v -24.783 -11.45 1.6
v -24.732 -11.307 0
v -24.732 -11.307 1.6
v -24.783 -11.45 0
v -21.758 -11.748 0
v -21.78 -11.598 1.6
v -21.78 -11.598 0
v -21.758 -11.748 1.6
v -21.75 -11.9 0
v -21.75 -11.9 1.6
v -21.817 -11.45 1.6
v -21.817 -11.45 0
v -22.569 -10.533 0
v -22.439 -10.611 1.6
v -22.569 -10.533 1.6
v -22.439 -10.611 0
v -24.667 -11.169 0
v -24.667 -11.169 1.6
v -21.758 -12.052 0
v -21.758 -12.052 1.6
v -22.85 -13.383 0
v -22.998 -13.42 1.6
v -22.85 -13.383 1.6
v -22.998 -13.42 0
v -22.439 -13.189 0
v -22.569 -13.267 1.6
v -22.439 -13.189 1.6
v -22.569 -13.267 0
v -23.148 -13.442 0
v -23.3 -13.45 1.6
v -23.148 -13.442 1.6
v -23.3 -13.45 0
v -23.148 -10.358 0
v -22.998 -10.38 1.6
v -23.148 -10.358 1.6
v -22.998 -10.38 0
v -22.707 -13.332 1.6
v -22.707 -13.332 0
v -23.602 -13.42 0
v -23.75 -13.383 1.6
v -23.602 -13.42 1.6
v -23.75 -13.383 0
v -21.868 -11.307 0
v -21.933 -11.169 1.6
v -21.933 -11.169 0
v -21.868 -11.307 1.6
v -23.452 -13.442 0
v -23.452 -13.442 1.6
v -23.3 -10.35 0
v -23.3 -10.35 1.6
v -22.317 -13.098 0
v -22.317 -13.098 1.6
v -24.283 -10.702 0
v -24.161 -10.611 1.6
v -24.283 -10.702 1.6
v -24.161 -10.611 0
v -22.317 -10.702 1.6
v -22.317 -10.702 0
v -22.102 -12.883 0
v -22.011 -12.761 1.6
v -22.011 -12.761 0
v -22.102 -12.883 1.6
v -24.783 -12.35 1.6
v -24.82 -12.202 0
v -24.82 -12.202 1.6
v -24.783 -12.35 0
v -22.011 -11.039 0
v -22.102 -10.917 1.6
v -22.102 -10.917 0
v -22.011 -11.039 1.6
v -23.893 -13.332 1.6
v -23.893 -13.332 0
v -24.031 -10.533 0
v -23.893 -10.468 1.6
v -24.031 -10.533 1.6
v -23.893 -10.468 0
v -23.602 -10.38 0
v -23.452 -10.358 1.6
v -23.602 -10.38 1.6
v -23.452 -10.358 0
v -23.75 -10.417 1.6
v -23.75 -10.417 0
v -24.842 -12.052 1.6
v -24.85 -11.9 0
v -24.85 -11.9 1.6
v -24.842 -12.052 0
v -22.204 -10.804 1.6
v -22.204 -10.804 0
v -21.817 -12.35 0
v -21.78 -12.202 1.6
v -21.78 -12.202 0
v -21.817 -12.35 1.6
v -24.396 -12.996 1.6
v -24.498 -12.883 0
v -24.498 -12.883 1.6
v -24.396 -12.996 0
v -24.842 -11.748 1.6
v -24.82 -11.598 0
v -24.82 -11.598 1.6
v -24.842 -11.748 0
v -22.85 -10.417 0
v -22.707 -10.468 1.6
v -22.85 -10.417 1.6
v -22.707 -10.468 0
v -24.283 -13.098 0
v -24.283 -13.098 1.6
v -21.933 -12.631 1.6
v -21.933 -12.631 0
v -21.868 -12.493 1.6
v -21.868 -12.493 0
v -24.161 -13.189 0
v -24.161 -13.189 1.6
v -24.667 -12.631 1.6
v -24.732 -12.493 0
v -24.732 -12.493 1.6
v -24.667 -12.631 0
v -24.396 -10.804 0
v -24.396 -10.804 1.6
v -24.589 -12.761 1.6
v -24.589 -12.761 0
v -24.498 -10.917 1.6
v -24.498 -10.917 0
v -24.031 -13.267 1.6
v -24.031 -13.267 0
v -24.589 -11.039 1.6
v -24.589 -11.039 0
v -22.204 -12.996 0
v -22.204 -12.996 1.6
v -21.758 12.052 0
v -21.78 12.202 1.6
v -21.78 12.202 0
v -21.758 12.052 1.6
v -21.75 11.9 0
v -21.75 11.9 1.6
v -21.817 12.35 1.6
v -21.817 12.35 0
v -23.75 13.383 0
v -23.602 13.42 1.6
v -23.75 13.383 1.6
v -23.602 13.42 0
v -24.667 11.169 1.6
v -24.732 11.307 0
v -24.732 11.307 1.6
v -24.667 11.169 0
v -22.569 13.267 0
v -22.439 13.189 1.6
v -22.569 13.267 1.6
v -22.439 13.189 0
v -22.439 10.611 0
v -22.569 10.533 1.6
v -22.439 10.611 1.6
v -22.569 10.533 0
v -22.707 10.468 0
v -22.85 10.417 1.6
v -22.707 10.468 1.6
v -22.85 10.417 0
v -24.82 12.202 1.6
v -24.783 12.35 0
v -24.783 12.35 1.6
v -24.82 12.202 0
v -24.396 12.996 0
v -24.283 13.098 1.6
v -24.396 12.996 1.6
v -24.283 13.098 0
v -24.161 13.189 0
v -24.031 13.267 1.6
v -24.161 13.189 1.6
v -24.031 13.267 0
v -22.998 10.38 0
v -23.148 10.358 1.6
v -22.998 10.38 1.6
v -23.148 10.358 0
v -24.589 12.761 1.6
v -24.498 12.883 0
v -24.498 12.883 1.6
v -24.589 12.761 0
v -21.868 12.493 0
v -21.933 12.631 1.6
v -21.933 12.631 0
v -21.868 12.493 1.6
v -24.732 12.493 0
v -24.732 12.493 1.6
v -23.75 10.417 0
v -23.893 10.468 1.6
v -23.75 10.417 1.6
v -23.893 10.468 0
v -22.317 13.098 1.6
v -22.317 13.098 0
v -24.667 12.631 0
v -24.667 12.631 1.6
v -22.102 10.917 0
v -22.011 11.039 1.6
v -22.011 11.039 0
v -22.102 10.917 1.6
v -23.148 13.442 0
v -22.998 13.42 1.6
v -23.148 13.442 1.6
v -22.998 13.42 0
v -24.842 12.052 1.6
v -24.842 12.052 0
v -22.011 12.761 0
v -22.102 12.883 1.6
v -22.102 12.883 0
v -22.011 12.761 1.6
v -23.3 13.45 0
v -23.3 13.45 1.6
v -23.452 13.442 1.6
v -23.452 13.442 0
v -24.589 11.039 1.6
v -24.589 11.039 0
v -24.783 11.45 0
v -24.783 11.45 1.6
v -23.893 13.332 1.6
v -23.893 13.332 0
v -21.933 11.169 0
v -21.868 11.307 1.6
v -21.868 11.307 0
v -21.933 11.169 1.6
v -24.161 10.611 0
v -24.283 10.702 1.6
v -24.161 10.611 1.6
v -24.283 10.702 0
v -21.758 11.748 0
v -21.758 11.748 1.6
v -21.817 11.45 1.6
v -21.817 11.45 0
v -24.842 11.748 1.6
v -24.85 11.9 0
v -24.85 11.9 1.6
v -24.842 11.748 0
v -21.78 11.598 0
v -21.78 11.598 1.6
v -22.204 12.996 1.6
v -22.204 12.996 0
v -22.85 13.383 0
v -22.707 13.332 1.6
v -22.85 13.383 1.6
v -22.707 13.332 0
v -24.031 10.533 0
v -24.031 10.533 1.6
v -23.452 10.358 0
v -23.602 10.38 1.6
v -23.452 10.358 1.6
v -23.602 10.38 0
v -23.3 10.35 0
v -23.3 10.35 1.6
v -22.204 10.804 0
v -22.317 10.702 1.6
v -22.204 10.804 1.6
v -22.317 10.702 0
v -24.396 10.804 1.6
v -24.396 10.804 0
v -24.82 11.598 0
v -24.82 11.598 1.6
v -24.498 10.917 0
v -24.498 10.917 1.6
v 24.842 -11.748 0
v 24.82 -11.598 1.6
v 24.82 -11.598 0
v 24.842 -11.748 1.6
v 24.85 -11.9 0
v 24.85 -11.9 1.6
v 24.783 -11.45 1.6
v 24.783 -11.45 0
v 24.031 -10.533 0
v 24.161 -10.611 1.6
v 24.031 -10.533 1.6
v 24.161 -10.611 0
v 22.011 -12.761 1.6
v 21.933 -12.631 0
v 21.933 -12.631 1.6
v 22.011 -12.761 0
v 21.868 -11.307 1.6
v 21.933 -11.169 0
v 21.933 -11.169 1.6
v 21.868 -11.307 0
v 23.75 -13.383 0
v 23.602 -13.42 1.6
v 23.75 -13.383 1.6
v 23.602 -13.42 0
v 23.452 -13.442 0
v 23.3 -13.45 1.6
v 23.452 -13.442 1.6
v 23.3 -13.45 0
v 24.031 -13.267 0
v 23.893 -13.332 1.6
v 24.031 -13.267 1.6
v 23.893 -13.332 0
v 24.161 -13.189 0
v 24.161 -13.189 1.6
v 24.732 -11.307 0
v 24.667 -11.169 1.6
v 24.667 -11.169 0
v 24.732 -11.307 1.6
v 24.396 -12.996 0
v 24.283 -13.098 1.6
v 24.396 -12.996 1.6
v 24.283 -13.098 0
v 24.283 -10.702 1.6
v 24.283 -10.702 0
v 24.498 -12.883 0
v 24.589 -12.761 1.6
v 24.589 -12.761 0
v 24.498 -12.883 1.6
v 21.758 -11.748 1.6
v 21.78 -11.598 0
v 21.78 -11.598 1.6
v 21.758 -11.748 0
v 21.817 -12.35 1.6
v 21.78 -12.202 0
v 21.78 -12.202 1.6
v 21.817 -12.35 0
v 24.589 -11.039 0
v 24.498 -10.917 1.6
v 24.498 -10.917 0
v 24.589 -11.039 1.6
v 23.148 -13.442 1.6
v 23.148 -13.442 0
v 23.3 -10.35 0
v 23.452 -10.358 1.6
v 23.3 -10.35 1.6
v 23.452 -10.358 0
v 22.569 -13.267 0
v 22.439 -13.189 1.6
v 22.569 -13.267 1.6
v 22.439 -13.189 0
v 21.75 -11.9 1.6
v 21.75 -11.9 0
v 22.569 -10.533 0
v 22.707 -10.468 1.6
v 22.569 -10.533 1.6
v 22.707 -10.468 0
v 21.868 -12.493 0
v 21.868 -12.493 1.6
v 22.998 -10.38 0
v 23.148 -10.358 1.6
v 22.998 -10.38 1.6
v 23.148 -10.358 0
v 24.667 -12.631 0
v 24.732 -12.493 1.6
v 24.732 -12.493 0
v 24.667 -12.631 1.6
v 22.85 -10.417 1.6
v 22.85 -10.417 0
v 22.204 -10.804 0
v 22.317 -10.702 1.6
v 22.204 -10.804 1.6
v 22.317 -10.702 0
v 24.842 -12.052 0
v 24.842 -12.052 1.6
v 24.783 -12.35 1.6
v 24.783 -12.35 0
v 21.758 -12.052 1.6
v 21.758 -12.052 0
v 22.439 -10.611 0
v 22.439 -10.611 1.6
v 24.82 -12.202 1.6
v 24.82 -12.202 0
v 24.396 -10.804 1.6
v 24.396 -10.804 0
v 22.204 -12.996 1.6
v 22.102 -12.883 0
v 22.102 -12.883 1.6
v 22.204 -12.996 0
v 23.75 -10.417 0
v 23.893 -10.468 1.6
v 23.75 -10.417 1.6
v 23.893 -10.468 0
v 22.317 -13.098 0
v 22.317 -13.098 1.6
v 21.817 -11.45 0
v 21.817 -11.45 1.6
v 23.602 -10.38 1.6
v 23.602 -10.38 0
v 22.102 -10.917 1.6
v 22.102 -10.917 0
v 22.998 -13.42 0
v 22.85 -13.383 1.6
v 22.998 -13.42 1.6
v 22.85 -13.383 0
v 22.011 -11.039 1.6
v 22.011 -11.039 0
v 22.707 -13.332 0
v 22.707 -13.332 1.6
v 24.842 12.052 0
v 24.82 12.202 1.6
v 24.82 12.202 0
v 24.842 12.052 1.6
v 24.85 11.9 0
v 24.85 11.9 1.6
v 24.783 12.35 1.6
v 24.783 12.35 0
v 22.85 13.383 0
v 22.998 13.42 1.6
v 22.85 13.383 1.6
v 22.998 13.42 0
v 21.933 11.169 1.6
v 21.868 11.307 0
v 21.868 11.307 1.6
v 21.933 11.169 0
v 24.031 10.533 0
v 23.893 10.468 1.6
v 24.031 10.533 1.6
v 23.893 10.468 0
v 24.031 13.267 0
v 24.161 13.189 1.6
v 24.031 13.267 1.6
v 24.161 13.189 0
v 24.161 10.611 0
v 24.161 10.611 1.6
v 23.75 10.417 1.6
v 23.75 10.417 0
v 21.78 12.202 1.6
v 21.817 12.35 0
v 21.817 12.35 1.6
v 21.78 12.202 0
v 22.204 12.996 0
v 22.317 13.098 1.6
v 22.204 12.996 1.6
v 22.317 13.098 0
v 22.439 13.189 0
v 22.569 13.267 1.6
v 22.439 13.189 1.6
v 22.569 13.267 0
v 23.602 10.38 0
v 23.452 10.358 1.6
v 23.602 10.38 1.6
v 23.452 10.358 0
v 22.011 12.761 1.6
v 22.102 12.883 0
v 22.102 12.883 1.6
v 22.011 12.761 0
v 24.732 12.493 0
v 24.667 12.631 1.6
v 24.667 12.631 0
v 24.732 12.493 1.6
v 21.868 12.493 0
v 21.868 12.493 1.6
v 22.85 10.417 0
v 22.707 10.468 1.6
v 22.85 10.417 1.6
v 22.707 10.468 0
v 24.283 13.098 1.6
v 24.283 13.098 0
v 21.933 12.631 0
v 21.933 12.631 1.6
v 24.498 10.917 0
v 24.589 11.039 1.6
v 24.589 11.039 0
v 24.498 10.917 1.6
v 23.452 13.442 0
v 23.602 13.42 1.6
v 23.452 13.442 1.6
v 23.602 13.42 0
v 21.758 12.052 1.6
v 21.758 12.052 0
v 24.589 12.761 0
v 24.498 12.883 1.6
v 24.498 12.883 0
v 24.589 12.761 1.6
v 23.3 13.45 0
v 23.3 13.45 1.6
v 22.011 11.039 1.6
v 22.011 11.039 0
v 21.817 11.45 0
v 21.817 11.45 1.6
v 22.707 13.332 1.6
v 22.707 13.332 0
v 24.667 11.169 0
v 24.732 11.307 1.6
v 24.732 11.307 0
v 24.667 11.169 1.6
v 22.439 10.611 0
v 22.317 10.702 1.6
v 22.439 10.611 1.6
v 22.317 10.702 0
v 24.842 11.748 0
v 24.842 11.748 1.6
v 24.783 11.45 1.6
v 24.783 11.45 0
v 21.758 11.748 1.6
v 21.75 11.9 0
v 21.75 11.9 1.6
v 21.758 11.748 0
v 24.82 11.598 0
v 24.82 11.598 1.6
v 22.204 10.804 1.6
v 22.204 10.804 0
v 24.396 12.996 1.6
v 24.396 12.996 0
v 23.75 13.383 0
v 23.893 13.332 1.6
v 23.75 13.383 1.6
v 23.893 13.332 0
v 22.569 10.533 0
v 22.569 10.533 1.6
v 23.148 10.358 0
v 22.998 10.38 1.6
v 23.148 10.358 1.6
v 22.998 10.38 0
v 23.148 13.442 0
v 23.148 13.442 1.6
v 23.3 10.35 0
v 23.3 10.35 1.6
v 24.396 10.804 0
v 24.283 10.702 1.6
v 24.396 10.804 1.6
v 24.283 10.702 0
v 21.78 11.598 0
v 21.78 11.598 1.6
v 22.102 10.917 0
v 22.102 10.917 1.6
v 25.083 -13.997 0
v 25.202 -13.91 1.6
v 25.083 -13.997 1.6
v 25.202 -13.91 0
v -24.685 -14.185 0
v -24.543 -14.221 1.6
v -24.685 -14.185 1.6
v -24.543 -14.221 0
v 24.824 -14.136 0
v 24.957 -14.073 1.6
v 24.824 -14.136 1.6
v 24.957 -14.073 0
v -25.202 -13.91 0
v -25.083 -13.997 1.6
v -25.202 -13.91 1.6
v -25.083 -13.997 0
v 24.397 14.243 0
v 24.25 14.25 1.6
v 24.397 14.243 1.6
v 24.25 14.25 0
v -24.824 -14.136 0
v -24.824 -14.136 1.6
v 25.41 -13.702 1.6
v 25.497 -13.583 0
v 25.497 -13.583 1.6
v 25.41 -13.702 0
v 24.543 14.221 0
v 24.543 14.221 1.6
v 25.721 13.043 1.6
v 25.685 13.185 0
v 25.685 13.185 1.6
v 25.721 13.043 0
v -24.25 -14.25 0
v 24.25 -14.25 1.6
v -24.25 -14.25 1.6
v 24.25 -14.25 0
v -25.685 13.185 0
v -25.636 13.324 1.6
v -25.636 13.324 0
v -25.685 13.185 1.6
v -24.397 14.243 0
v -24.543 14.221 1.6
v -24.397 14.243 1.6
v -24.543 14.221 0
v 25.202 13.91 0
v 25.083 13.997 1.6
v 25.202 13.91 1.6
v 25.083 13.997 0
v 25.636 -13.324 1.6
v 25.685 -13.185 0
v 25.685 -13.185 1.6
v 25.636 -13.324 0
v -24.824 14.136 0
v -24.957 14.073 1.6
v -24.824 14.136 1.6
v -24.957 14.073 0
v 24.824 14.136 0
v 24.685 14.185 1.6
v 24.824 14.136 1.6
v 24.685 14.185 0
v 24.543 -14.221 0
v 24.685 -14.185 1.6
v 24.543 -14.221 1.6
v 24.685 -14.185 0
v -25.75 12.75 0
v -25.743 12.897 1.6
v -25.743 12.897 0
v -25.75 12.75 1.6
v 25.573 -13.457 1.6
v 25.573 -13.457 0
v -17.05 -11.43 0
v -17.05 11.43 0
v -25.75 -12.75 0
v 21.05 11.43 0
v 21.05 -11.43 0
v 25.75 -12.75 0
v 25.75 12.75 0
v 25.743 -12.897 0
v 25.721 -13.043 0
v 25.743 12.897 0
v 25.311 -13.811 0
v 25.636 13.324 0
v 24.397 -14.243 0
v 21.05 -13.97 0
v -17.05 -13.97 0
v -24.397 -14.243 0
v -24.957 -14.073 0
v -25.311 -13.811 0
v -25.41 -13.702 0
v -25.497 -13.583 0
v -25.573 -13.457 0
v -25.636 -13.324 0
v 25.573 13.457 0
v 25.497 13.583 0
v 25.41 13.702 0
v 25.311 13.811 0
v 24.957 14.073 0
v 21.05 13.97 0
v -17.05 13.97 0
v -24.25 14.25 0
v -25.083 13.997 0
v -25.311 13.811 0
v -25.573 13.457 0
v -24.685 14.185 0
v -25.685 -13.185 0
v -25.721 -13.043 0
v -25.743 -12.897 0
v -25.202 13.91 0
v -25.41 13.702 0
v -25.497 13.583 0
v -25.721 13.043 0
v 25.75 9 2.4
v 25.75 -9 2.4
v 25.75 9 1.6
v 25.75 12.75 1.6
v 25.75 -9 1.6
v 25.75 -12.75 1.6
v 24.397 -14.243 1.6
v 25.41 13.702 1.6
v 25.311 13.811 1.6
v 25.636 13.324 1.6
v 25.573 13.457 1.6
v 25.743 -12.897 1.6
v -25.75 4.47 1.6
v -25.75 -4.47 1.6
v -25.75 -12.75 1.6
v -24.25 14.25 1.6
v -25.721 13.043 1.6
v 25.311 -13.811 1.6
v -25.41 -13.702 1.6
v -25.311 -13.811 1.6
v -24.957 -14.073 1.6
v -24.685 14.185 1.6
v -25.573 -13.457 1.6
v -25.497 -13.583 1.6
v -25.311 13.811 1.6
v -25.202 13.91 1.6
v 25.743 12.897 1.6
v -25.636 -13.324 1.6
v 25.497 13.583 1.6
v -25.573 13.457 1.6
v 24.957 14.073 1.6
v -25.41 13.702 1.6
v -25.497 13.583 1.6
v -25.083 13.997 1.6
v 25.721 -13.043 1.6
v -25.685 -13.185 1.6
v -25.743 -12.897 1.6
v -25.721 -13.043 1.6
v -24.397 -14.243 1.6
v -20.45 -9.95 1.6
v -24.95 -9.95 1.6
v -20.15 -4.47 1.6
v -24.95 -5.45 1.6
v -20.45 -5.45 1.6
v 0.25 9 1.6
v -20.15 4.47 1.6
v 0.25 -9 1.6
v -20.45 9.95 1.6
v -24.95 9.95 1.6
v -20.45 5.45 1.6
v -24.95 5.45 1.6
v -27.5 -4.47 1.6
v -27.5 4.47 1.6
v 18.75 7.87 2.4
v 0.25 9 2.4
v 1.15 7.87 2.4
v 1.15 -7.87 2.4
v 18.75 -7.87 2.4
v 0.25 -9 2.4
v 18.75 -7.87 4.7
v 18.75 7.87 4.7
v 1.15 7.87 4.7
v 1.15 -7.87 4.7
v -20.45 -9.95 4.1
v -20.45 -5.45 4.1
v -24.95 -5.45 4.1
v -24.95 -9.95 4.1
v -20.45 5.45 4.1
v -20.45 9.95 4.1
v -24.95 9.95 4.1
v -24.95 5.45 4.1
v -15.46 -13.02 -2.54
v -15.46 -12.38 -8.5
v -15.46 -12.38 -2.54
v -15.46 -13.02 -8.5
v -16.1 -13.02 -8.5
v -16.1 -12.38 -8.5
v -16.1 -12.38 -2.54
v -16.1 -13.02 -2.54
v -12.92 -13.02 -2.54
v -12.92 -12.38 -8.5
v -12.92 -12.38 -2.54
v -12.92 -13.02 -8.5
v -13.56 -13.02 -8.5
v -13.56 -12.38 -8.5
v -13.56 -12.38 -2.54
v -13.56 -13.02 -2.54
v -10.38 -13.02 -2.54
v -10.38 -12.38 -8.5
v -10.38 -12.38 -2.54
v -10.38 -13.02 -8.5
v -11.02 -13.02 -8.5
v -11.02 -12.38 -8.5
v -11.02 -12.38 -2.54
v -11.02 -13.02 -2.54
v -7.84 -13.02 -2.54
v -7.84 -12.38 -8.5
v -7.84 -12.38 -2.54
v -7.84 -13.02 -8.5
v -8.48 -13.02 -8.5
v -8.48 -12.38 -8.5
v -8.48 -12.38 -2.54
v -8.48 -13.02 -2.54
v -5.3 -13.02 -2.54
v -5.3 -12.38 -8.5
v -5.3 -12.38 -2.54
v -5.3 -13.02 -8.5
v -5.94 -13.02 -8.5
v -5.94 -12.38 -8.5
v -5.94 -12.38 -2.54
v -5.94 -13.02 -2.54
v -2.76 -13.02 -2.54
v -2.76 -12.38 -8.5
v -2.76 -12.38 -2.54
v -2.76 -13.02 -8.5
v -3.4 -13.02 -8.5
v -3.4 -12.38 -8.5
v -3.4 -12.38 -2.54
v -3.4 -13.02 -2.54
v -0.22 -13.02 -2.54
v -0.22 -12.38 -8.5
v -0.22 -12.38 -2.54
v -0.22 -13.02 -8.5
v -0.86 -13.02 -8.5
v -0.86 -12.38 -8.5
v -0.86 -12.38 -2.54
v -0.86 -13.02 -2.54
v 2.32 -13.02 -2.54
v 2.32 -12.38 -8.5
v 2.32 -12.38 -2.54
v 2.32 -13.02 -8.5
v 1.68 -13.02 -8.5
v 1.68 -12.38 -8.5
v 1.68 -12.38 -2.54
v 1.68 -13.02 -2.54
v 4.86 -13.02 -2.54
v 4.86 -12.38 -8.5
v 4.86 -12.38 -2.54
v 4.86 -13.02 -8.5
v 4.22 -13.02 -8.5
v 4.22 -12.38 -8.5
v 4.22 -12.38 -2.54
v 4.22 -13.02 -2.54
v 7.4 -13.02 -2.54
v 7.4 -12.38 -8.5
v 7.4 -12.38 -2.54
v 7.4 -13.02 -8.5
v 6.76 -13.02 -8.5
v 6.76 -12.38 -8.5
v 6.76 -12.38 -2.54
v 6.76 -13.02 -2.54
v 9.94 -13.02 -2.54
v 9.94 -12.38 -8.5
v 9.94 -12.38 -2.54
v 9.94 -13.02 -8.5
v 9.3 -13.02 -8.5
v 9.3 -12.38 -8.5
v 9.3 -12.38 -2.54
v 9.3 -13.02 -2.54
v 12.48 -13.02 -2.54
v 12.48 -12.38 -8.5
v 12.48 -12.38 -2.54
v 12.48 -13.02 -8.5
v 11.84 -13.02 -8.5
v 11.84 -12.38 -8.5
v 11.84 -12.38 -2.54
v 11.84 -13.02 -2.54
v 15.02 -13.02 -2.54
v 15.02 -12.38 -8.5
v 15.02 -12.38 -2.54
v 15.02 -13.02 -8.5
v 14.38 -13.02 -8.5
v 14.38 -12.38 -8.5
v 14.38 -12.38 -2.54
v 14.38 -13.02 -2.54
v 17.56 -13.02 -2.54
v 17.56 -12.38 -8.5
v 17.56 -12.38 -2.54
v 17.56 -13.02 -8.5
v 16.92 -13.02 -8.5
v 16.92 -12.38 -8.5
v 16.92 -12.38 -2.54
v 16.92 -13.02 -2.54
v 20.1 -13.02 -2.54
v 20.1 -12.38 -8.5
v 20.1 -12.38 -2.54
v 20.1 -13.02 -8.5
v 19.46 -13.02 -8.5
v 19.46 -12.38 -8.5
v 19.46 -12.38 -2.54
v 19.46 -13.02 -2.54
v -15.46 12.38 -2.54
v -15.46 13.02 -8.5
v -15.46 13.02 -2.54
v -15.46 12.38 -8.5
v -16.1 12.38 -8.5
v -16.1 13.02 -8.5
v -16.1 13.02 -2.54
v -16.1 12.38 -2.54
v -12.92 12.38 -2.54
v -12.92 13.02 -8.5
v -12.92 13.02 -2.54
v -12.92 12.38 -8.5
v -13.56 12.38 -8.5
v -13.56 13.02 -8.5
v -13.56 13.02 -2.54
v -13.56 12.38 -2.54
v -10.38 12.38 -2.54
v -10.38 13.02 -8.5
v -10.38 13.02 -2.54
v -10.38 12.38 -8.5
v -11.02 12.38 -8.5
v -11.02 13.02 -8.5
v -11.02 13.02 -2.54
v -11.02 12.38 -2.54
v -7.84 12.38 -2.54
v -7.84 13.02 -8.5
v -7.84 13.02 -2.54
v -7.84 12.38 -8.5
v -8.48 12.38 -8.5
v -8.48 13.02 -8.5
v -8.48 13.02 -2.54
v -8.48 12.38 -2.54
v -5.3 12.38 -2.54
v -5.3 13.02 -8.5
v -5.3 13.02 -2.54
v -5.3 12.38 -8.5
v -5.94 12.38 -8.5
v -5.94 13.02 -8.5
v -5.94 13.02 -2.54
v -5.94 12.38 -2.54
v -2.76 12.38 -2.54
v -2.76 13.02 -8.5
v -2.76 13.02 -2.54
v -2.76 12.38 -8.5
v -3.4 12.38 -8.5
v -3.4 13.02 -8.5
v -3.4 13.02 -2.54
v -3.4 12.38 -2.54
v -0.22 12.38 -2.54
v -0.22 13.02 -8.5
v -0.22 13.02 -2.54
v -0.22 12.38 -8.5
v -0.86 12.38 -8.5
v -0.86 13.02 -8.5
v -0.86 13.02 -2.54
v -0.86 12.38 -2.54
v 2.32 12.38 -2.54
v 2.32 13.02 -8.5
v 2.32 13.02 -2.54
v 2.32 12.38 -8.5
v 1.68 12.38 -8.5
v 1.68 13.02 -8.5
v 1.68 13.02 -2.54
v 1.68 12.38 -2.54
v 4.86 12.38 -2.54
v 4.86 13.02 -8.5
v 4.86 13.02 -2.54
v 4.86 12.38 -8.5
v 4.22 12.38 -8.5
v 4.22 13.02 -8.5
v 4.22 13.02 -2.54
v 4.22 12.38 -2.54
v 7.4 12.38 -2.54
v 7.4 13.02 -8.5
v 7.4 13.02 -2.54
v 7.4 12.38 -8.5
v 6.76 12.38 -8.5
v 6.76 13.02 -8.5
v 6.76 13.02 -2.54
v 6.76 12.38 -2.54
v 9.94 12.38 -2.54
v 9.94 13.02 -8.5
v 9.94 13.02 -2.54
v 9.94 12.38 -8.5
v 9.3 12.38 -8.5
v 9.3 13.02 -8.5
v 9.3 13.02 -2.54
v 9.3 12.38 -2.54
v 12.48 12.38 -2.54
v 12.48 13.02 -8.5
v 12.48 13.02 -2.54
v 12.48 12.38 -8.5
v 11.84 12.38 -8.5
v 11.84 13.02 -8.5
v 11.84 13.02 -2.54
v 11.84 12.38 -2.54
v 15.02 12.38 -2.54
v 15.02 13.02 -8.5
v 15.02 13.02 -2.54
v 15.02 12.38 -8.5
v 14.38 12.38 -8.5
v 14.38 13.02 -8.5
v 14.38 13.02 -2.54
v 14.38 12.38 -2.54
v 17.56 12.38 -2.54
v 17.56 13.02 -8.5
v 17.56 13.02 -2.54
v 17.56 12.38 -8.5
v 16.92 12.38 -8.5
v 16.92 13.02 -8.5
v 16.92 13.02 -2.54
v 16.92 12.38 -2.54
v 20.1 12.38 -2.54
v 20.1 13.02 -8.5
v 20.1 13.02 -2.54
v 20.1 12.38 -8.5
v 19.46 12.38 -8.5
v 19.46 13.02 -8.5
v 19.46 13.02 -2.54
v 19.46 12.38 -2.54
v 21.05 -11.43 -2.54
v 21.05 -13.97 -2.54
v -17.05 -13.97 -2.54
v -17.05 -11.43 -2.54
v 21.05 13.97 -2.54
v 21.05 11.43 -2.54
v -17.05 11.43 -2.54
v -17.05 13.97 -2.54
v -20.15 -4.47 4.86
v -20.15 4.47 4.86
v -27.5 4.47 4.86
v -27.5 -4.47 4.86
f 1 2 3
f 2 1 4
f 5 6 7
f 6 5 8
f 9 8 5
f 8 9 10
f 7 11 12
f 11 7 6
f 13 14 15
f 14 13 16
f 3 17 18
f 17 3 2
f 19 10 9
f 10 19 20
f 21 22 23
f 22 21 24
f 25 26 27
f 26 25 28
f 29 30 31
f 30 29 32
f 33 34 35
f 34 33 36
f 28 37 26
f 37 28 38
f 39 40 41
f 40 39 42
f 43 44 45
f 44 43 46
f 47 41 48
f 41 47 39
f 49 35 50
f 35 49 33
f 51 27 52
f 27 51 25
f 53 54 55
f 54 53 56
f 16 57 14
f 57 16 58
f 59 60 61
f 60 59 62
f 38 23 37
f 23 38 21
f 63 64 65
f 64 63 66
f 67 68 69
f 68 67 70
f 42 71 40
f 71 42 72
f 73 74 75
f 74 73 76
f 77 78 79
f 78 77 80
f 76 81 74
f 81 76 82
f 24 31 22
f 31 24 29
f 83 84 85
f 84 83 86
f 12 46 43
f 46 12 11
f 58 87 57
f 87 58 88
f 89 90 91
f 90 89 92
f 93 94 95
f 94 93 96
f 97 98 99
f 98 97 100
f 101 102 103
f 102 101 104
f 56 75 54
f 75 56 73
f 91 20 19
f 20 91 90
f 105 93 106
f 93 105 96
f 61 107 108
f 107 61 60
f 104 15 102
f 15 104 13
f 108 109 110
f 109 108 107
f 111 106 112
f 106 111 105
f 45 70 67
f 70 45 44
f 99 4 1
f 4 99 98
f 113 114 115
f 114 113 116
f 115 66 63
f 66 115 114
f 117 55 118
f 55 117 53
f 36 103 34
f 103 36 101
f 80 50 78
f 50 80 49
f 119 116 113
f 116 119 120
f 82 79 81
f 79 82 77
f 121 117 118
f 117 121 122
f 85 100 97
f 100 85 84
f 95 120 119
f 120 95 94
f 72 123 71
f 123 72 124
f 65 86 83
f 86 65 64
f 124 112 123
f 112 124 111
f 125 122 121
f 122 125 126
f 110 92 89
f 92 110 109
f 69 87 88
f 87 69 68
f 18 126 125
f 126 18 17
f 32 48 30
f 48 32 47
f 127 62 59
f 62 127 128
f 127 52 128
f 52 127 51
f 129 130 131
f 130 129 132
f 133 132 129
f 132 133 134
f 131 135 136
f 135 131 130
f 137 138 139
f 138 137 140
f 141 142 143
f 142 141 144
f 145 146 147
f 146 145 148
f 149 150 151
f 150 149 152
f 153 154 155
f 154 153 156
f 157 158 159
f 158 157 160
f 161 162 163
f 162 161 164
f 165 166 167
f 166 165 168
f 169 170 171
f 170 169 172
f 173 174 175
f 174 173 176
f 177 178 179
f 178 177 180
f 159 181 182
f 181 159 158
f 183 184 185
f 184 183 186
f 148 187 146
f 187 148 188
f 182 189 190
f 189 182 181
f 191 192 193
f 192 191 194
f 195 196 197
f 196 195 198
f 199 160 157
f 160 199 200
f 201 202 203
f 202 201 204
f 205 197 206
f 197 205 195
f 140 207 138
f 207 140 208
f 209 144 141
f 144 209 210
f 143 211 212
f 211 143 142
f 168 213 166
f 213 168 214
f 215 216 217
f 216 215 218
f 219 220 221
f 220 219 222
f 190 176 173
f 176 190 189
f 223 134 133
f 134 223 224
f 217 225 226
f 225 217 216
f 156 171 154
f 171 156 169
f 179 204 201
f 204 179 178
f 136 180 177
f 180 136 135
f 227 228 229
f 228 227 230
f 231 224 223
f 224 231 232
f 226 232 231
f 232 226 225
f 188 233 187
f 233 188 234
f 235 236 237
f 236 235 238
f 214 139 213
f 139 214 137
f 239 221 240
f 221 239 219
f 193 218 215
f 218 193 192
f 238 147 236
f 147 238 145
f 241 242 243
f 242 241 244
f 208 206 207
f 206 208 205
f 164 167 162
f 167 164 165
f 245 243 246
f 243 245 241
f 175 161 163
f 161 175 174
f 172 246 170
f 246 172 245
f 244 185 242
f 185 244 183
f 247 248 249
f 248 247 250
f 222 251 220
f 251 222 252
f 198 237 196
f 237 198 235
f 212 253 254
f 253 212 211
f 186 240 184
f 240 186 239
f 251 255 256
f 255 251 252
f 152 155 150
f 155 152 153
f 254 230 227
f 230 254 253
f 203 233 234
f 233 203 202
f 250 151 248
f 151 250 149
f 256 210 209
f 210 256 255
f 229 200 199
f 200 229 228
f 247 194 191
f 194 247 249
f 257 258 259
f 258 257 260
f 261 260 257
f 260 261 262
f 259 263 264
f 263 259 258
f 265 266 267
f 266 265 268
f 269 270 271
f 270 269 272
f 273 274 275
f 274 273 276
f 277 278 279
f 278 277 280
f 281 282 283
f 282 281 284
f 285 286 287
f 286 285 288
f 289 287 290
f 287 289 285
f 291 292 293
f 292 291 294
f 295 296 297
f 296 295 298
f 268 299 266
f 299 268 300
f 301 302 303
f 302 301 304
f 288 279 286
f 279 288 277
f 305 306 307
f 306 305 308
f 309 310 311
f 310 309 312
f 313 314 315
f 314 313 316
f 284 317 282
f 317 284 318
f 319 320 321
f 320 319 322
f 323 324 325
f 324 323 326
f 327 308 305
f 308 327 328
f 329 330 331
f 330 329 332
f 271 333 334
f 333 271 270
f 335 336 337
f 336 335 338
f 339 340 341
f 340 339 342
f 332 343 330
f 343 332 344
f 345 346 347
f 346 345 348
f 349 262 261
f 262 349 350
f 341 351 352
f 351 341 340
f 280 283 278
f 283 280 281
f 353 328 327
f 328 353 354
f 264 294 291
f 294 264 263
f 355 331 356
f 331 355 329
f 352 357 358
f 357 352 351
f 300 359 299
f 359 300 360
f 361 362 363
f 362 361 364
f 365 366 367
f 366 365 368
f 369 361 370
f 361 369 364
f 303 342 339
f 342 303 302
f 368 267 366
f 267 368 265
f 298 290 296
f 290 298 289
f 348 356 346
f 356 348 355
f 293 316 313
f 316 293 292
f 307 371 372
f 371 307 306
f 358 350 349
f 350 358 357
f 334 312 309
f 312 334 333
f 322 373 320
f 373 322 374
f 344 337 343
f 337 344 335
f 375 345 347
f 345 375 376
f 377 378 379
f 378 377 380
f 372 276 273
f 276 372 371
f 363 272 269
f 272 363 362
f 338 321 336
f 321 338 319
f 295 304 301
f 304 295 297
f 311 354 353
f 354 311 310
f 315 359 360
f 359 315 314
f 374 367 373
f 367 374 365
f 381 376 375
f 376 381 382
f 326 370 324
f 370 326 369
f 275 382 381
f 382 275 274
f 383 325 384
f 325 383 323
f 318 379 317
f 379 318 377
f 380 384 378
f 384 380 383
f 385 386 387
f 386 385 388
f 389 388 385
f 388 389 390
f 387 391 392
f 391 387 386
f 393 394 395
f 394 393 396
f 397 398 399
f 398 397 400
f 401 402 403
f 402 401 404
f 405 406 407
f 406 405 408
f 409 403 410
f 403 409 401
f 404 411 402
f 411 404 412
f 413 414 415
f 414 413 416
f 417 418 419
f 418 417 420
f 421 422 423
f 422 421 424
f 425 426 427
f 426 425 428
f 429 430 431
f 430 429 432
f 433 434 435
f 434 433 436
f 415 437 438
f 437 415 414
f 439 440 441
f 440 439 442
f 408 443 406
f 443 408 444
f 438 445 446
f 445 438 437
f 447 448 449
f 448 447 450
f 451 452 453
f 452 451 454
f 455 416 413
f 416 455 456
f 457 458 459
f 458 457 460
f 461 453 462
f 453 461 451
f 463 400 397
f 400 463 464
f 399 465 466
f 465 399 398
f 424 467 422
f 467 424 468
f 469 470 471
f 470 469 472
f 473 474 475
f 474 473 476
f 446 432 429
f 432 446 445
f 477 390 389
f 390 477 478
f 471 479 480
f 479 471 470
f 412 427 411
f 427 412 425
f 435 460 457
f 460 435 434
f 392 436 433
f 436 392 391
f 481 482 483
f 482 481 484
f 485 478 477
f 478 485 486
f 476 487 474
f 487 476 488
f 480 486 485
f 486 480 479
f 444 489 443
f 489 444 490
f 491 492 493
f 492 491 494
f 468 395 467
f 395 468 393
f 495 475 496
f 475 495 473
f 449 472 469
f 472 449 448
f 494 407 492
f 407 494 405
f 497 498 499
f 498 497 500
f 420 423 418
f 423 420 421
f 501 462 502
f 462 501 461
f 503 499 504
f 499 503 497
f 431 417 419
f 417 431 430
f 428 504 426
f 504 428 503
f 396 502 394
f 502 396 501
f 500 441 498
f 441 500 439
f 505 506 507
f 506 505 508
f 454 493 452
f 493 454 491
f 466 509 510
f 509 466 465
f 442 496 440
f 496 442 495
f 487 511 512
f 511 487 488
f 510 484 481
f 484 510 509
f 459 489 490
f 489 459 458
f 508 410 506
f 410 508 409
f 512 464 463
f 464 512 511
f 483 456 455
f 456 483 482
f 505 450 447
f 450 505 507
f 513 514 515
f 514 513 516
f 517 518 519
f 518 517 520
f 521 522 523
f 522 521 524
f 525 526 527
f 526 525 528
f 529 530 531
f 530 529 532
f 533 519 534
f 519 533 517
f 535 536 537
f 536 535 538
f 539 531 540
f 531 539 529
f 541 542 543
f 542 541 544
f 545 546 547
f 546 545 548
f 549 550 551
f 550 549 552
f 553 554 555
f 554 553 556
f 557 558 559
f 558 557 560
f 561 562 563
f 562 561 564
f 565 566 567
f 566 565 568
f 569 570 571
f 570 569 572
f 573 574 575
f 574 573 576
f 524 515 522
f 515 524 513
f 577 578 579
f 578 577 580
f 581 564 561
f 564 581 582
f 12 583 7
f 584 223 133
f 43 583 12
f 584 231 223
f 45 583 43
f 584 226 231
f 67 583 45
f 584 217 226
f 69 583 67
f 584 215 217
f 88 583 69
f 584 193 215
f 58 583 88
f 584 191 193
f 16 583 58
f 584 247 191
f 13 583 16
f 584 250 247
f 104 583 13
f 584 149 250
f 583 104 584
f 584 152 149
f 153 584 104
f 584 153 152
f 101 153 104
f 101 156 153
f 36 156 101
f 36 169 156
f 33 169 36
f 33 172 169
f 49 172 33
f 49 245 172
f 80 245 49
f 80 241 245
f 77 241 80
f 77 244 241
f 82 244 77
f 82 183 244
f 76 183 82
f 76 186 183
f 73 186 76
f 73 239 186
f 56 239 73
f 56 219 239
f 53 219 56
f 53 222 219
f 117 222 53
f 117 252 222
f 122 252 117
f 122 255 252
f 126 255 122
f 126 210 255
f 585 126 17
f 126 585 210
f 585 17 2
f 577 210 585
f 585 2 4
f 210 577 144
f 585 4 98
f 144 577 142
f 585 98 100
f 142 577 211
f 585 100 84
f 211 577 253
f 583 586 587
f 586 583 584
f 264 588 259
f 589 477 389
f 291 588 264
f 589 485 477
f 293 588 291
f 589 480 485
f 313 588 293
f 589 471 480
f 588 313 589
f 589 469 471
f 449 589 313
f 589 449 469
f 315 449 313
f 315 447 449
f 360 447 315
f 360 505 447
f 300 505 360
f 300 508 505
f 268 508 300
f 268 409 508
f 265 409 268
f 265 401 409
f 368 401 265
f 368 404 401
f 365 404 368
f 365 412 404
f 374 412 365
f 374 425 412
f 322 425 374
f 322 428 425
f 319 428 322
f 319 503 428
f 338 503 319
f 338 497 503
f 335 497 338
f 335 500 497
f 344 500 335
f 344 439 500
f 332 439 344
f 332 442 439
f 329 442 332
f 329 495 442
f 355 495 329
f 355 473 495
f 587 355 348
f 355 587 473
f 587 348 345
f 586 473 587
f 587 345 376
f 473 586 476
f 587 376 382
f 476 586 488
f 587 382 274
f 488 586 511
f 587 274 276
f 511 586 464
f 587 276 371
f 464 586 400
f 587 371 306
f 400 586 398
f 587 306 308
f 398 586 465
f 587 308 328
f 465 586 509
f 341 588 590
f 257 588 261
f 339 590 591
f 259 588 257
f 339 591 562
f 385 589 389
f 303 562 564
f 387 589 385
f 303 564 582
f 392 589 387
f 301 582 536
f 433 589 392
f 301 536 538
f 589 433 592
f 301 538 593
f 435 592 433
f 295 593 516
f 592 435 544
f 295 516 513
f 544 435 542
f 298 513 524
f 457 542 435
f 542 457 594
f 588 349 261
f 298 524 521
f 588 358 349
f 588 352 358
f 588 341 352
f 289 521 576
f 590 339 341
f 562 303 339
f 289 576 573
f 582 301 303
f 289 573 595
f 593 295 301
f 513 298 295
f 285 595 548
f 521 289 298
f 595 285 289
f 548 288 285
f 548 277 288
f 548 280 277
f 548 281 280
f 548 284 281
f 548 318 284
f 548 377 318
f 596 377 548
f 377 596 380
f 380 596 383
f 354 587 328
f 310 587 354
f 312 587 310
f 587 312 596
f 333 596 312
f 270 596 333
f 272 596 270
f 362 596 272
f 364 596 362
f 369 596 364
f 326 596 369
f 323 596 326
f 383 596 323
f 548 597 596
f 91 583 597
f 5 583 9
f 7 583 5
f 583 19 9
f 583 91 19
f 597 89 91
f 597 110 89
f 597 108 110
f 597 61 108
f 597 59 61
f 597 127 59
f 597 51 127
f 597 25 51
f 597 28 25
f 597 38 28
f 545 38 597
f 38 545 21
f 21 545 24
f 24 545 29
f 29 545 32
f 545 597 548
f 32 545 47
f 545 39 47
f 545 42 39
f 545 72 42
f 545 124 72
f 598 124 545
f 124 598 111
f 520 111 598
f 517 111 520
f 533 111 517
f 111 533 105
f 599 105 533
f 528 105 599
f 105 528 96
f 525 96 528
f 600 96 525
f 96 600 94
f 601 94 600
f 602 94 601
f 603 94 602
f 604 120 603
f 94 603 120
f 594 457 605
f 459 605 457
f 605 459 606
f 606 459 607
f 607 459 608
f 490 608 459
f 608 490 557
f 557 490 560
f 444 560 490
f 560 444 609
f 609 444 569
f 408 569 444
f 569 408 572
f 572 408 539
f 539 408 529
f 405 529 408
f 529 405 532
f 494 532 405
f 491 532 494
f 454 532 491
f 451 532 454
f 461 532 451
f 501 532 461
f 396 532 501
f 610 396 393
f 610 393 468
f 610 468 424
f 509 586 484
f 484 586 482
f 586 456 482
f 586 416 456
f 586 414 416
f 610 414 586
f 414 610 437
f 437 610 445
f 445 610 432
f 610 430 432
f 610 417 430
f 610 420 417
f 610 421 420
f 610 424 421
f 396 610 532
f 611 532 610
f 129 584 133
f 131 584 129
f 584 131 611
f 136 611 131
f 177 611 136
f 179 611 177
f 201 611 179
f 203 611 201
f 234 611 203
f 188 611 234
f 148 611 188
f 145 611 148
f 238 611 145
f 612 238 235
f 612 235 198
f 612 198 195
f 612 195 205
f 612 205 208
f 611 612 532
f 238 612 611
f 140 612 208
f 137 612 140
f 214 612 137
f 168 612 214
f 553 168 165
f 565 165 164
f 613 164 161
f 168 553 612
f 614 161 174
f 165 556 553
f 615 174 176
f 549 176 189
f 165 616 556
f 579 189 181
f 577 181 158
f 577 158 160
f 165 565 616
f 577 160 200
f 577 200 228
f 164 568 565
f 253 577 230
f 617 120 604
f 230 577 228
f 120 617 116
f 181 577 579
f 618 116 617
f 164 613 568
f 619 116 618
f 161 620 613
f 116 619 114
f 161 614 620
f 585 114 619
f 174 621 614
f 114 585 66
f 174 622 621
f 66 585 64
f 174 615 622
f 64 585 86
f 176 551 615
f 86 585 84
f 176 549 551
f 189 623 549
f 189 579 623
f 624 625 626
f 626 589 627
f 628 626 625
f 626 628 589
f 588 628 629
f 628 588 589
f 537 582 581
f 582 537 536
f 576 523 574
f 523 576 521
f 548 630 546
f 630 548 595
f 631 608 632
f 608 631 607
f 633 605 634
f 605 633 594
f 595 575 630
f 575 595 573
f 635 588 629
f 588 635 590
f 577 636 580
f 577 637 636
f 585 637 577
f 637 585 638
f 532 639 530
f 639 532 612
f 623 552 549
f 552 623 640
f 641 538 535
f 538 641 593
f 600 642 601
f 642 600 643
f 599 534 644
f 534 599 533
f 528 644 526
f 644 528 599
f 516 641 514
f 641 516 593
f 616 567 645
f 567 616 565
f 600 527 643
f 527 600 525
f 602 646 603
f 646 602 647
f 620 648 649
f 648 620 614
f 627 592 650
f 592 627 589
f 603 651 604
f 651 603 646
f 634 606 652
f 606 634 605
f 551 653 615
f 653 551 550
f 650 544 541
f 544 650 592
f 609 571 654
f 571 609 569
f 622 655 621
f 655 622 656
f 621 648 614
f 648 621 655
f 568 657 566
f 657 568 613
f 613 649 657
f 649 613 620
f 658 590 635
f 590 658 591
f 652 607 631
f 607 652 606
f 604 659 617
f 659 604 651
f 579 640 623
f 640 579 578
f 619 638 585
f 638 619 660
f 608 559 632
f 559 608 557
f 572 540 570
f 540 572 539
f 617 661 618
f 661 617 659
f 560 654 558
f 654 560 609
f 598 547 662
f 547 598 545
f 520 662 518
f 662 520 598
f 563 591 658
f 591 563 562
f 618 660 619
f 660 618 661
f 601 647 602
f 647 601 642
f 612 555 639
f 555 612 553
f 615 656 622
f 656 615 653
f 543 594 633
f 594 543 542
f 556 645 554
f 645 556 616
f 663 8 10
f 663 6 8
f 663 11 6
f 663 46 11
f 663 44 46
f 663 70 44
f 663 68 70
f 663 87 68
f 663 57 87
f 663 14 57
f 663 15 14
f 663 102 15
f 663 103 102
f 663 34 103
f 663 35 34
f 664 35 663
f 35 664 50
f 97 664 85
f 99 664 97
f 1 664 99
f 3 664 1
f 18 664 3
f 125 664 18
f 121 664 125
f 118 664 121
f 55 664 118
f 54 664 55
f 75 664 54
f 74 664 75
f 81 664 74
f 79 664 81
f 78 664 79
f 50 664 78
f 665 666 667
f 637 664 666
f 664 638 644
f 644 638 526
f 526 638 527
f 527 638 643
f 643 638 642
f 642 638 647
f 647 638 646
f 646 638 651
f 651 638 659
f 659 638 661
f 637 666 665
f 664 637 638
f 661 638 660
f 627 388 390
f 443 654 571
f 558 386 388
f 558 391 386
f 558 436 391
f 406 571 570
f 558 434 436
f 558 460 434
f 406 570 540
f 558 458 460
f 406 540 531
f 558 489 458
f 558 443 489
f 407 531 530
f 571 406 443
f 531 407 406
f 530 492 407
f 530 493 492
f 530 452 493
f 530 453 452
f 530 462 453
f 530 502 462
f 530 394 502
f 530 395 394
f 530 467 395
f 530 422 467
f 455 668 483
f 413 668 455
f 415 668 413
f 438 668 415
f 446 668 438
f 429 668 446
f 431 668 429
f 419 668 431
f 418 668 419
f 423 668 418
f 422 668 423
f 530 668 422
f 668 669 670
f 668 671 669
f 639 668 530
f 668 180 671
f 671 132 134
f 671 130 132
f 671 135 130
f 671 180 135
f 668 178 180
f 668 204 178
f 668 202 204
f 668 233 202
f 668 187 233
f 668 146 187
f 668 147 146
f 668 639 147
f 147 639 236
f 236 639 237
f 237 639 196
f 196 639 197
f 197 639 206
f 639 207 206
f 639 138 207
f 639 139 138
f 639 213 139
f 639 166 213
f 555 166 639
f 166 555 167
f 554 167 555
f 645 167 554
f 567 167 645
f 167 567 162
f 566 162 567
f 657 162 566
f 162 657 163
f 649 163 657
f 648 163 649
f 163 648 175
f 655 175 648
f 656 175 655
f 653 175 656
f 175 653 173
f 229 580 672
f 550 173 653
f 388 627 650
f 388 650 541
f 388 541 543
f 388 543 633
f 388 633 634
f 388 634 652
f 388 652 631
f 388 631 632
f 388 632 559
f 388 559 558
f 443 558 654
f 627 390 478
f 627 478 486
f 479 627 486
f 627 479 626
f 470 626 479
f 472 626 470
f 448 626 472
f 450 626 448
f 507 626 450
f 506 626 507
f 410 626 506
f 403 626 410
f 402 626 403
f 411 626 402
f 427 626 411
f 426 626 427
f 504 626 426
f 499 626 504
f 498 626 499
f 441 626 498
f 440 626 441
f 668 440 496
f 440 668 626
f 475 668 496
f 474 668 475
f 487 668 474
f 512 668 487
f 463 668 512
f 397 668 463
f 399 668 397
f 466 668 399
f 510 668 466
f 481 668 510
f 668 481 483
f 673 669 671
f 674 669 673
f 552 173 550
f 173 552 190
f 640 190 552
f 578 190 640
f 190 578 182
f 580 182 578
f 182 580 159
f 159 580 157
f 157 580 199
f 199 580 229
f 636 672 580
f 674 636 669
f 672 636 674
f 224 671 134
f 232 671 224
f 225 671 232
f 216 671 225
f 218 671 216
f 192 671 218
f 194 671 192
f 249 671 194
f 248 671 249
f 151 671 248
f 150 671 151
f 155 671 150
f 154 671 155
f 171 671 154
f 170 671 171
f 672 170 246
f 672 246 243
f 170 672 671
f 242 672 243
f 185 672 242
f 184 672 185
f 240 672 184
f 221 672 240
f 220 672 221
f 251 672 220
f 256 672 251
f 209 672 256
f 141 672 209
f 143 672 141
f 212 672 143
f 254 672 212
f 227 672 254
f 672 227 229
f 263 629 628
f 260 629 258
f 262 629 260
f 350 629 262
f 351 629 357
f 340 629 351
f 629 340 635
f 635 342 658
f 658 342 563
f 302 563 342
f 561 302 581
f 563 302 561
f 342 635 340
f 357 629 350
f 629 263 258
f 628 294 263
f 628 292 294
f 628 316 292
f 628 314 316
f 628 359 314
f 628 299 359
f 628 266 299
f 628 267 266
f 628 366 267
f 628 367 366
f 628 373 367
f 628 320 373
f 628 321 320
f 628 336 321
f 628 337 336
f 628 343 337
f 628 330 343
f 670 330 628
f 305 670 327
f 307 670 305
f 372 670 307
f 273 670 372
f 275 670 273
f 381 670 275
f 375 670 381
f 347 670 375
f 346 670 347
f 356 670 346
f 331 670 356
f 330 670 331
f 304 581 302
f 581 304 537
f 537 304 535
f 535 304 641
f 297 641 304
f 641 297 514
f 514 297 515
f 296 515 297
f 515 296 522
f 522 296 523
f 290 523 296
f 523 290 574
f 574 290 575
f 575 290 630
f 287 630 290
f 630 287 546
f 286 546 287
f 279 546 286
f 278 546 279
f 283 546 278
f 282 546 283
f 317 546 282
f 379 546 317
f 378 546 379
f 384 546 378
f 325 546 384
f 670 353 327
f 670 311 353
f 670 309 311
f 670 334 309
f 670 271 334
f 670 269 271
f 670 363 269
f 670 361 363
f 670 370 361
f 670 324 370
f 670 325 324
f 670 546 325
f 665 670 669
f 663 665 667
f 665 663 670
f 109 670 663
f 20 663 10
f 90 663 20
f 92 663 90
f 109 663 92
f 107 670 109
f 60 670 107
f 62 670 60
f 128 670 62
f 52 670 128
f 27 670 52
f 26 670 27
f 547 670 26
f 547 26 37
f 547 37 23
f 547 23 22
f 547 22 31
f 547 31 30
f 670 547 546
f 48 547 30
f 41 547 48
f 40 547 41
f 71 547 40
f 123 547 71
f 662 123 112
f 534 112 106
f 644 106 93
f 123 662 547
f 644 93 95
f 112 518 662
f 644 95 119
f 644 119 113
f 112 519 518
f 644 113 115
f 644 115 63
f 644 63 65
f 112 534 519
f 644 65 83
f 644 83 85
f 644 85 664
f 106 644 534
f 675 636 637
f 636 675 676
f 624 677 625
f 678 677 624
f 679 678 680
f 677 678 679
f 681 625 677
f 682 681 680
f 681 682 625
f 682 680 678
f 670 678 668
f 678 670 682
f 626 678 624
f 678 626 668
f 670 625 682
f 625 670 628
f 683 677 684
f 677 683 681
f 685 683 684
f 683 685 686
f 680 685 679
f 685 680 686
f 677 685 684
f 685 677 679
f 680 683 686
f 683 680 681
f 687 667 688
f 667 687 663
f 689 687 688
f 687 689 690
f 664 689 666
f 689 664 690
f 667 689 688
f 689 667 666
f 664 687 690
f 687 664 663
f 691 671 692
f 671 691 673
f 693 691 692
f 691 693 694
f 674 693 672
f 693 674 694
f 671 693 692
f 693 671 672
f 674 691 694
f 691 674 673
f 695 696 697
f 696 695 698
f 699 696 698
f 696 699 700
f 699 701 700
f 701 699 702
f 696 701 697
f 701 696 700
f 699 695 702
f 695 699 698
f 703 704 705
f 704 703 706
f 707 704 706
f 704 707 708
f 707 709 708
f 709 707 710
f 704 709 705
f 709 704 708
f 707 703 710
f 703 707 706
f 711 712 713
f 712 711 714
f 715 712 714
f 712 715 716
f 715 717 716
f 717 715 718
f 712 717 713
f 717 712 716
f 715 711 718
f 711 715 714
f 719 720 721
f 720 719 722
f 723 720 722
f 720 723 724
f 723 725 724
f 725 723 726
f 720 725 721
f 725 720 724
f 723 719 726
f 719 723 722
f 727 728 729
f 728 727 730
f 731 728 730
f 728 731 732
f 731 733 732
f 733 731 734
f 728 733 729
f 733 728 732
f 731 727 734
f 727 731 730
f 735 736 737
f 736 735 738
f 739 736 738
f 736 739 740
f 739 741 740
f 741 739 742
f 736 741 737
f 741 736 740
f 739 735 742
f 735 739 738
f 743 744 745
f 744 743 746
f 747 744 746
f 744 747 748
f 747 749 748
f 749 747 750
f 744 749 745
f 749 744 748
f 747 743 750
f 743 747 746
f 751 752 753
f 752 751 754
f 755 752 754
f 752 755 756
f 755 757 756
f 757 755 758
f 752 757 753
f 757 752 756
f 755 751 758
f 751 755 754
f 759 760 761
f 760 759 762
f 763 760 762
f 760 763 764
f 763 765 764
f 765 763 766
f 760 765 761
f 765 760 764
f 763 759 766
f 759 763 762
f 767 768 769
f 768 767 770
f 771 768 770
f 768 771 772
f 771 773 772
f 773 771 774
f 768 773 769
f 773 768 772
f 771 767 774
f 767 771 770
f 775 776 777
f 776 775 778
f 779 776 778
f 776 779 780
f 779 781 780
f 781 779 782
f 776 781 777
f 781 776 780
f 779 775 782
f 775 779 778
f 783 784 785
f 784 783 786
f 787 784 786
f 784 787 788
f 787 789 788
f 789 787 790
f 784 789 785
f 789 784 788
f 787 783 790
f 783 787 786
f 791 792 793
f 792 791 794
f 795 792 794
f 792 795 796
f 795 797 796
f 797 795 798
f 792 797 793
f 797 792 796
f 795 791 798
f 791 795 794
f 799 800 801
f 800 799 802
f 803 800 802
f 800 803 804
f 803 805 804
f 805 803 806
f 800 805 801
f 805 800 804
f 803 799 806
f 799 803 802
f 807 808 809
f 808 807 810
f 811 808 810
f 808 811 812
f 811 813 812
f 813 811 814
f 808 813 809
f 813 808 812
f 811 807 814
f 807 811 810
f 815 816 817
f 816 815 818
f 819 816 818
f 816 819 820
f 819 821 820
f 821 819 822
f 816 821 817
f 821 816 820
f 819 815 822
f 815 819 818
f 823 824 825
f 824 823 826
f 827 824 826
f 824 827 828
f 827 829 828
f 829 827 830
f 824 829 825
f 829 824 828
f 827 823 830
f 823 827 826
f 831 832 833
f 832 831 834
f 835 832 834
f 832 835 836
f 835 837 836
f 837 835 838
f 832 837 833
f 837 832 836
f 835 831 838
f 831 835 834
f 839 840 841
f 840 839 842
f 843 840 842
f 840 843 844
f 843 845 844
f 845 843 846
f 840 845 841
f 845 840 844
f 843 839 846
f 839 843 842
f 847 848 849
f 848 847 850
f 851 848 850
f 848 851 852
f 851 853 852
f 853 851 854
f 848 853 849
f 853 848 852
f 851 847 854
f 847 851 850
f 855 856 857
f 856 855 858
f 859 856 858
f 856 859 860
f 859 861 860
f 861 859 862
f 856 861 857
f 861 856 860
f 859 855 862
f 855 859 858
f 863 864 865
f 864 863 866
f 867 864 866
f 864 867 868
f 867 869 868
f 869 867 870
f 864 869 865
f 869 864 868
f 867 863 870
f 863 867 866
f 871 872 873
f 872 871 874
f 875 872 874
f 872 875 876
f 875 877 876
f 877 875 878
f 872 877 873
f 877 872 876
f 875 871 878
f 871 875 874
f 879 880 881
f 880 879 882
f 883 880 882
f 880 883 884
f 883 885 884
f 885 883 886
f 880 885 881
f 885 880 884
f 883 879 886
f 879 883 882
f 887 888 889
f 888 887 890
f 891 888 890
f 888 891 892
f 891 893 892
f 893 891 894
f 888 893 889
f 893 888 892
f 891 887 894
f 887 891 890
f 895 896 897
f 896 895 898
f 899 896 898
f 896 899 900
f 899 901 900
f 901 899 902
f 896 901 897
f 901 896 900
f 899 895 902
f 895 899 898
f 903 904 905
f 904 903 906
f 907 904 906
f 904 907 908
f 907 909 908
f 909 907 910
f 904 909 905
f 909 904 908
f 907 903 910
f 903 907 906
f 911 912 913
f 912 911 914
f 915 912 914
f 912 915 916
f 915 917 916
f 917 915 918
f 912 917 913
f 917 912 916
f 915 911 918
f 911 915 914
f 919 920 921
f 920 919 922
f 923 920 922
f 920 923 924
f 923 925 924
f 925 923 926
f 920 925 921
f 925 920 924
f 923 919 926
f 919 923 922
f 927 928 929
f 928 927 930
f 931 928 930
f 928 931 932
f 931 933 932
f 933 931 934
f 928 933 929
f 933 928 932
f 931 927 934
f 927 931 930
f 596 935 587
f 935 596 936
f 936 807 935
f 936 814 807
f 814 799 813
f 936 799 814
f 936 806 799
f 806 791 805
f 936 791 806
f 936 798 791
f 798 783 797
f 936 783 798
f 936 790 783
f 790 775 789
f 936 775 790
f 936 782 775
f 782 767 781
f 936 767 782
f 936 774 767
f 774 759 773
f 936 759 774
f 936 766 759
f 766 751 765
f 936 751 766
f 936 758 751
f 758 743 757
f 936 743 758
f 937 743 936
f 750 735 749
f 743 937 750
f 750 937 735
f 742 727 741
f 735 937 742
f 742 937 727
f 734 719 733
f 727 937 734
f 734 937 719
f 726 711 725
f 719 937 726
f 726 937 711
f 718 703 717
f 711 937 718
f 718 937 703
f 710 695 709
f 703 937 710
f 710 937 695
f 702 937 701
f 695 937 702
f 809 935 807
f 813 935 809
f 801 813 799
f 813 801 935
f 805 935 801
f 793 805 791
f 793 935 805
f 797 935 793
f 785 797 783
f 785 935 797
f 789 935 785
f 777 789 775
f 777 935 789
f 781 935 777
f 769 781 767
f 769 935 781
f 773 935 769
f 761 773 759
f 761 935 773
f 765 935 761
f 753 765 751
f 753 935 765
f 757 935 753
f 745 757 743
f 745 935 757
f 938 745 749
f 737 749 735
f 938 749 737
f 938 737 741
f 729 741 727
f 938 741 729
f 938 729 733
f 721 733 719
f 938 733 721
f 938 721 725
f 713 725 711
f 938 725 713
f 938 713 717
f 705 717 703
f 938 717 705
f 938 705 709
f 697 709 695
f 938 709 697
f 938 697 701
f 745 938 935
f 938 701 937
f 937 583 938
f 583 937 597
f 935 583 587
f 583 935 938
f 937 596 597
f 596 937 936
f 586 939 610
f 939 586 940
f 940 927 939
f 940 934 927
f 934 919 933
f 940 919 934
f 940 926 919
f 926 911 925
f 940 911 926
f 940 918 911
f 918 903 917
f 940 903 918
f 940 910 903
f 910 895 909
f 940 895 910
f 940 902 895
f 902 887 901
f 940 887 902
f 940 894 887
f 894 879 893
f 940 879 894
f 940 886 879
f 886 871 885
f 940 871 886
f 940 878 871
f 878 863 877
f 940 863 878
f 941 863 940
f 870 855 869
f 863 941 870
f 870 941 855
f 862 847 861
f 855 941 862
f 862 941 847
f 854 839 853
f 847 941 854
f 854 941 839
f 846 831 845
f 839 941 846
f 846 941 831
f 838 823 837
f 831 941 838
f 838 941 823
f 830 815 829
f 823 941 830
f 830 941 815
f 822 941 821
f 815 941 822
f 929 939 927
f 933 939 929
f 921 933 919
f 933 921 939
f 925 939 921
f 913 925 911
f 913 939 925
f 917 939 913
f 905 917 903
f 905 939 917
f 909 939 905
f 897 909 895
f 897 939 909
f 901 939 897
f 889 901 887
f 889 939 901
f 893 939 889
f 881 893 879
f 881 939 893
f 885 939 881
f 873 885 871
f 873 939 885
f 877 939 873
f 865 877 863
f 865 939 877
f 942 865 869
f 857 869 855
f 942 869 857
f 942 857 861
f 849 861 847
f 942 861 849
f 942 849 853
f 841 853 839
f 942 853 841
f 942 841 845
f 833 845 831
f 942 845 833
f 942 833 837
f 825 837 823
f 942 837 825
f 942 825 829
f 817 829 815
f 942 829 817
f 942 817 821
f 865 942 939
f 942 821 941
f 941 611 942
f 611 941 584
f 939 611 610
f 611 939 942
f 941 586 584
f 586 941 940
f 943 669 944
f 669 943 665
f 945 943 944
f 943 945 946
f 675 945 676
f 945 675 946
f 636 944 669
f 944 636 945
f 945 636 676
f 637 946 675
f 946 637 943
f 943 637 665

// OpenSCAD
// ---------------------------------------------------------------------------
// esp32.scad - rough model of the DOIT ESP32 DevKit V1 (30-pin, USB-C).
//
// Deliberately rough. This is a fit-and-clearance stand-in for enclosure work,
// not a replica. Everything an enclosure actually touches - outline, mounting
// holes, USB-C port, overall height - follows params.scad. Small top-face parts
// are represented only where they set the height budget.
//
// The detailed reference model is reference/esp32_devkitv1.3mf.
//
// Origin: center of the PCB footprint, Z = 0 at the PCB bottom face.
// +X is the WROOM/antenna end, -X is the USB-C end.
//
// Render:  openscad -o build/esp32.stl hardware/esp32.scad
// ---------------------------------------------------------------------------

include <params.scad>

$fn = $preview ? 24 : 64;

// --- helpers ----------------------------------------------------------------

module rounded_plate(len, wid, thk, r) {
    hull() for (sx = [-1,1], sy = [-1,1])
        translate([sx*(len/2 - r), sy*(wid/2 - r), 0])
            cylinder(h = thk, r = r);
}

module box(size, at) { translate(at) cube(size, center = true); }

// --- sub-assemblies ---------------------------------------------------------

module esp_pcb() {
    difference() {
        rounded_plate(esp_len, esp_width, pcb_thick, esp_corner_r);
        for (sx = [-1,1], sy = [-1,1])
            translate([sx*esp_hole_dx, sy*esp_hole_dy, -1])
                cylinder(h = pcb_thick + 2, d = esp_hole_dia);
    }
}

// ESP32-WROOM-32: module PCB across the full footprint, shield can on top.
// The exposed tail at the +X end is the PCB antenna - keep metal away from it.
module esp_wroom() {
    box([wroom_len, wroom_width, wroom_pcb_h],
        [wroom_x0 + wroom_len/2, 0, pcb_thick + wroom_pcb_h/2]);
    box([wroom_can_len, wroom_can_w, wroom_height - wroom_pcb_h],
        [wroom_can_x, 0, pcb_thick + wroom_pcb_h + (wroom_height - wroom_pcb_h)/2]);
}

module esp_usb() {
    box([usb_body_len, usb_width, usb_height],
        [-esp_len/2 - usb_overhang + usb_body_len/2, 0, pcb_thick + usb_height/2]);
}

module esp_buttons() {
    for (sy = [-1,1])
        box([esp_btn, esp_btn, esp_btn_h],
            [esp_btn_x, sy*esp_btn_dy, pcb_thick + esp_btn_h/2]);
}

module esp_headers() {
    for (sy = [-1,1]) {
        // plastic spacer, under the board
        box([esp_pin_span + pitch, pitch, hdr_plastic_h],
            [esp_hdr_x_off, sy*esp_row_spacing/2, -hdr_plastic_h/2]);
        // pins, through the board down to the tips
        for (i = [0 : esp_pins_per_row - 1])
            box([hdr_pin_sq, hdr_pin_sq, hdr_below + pcb_thick],
                [esp_hdr_x_off - esp_pin_span/2 + i*pitch,
                 sy*esp_row_spacing/2,
                 pcb_thick - (hdr_below + pcb_thick)/2]);
    }
}

// --- public modules ---------------------------------------------------------

module esp32_board() {
    color("#14532d") esp_pcb();
    color("#8a7f6a") esp_wroom();
    color("#c0c0c0") esp_usb();
    color("#3a3a3a") esp_buttons();
    color("#b8912f") esp_headers();
}

// Clearance solid for enclosure boolean ops: the board swept out by `gap` on
// every side. Subtract this from a housing to carve the cavity. Note the USB-C
// is included, so the port cutout appears automatically when the connector
// reaches the wall.
module esp32_keepout(gap = clearance) {
    minkowski() {
        union() {
            box([esp_len, esp_width, pcb_thick], [0, 0, pcb_thick/2]);
            box([esp_len - 2*wroom_x0, esp_width, esp_misc_height],
                [wroom_x0, 0, pcb_thick + esp_misc_height/2]);
            esp_wroom();
            esp_usb();
            box([esp_pin_span + pitch, esp_row_spacing + pitch, hdr_below],
                [esp_hdr_x_off, 0, -hdr_below/2]);
        }
        sphere(r = gap, $fn = 12);
    }
}

// Overall envelope, for sanity checks and for sizing the housing.
esp_total_h = hdr_below + pcb_thick + max(wroom_height, usb_height, esp_btn_h);

// --- default render ---------------------------------------------------------

esp32_board();
